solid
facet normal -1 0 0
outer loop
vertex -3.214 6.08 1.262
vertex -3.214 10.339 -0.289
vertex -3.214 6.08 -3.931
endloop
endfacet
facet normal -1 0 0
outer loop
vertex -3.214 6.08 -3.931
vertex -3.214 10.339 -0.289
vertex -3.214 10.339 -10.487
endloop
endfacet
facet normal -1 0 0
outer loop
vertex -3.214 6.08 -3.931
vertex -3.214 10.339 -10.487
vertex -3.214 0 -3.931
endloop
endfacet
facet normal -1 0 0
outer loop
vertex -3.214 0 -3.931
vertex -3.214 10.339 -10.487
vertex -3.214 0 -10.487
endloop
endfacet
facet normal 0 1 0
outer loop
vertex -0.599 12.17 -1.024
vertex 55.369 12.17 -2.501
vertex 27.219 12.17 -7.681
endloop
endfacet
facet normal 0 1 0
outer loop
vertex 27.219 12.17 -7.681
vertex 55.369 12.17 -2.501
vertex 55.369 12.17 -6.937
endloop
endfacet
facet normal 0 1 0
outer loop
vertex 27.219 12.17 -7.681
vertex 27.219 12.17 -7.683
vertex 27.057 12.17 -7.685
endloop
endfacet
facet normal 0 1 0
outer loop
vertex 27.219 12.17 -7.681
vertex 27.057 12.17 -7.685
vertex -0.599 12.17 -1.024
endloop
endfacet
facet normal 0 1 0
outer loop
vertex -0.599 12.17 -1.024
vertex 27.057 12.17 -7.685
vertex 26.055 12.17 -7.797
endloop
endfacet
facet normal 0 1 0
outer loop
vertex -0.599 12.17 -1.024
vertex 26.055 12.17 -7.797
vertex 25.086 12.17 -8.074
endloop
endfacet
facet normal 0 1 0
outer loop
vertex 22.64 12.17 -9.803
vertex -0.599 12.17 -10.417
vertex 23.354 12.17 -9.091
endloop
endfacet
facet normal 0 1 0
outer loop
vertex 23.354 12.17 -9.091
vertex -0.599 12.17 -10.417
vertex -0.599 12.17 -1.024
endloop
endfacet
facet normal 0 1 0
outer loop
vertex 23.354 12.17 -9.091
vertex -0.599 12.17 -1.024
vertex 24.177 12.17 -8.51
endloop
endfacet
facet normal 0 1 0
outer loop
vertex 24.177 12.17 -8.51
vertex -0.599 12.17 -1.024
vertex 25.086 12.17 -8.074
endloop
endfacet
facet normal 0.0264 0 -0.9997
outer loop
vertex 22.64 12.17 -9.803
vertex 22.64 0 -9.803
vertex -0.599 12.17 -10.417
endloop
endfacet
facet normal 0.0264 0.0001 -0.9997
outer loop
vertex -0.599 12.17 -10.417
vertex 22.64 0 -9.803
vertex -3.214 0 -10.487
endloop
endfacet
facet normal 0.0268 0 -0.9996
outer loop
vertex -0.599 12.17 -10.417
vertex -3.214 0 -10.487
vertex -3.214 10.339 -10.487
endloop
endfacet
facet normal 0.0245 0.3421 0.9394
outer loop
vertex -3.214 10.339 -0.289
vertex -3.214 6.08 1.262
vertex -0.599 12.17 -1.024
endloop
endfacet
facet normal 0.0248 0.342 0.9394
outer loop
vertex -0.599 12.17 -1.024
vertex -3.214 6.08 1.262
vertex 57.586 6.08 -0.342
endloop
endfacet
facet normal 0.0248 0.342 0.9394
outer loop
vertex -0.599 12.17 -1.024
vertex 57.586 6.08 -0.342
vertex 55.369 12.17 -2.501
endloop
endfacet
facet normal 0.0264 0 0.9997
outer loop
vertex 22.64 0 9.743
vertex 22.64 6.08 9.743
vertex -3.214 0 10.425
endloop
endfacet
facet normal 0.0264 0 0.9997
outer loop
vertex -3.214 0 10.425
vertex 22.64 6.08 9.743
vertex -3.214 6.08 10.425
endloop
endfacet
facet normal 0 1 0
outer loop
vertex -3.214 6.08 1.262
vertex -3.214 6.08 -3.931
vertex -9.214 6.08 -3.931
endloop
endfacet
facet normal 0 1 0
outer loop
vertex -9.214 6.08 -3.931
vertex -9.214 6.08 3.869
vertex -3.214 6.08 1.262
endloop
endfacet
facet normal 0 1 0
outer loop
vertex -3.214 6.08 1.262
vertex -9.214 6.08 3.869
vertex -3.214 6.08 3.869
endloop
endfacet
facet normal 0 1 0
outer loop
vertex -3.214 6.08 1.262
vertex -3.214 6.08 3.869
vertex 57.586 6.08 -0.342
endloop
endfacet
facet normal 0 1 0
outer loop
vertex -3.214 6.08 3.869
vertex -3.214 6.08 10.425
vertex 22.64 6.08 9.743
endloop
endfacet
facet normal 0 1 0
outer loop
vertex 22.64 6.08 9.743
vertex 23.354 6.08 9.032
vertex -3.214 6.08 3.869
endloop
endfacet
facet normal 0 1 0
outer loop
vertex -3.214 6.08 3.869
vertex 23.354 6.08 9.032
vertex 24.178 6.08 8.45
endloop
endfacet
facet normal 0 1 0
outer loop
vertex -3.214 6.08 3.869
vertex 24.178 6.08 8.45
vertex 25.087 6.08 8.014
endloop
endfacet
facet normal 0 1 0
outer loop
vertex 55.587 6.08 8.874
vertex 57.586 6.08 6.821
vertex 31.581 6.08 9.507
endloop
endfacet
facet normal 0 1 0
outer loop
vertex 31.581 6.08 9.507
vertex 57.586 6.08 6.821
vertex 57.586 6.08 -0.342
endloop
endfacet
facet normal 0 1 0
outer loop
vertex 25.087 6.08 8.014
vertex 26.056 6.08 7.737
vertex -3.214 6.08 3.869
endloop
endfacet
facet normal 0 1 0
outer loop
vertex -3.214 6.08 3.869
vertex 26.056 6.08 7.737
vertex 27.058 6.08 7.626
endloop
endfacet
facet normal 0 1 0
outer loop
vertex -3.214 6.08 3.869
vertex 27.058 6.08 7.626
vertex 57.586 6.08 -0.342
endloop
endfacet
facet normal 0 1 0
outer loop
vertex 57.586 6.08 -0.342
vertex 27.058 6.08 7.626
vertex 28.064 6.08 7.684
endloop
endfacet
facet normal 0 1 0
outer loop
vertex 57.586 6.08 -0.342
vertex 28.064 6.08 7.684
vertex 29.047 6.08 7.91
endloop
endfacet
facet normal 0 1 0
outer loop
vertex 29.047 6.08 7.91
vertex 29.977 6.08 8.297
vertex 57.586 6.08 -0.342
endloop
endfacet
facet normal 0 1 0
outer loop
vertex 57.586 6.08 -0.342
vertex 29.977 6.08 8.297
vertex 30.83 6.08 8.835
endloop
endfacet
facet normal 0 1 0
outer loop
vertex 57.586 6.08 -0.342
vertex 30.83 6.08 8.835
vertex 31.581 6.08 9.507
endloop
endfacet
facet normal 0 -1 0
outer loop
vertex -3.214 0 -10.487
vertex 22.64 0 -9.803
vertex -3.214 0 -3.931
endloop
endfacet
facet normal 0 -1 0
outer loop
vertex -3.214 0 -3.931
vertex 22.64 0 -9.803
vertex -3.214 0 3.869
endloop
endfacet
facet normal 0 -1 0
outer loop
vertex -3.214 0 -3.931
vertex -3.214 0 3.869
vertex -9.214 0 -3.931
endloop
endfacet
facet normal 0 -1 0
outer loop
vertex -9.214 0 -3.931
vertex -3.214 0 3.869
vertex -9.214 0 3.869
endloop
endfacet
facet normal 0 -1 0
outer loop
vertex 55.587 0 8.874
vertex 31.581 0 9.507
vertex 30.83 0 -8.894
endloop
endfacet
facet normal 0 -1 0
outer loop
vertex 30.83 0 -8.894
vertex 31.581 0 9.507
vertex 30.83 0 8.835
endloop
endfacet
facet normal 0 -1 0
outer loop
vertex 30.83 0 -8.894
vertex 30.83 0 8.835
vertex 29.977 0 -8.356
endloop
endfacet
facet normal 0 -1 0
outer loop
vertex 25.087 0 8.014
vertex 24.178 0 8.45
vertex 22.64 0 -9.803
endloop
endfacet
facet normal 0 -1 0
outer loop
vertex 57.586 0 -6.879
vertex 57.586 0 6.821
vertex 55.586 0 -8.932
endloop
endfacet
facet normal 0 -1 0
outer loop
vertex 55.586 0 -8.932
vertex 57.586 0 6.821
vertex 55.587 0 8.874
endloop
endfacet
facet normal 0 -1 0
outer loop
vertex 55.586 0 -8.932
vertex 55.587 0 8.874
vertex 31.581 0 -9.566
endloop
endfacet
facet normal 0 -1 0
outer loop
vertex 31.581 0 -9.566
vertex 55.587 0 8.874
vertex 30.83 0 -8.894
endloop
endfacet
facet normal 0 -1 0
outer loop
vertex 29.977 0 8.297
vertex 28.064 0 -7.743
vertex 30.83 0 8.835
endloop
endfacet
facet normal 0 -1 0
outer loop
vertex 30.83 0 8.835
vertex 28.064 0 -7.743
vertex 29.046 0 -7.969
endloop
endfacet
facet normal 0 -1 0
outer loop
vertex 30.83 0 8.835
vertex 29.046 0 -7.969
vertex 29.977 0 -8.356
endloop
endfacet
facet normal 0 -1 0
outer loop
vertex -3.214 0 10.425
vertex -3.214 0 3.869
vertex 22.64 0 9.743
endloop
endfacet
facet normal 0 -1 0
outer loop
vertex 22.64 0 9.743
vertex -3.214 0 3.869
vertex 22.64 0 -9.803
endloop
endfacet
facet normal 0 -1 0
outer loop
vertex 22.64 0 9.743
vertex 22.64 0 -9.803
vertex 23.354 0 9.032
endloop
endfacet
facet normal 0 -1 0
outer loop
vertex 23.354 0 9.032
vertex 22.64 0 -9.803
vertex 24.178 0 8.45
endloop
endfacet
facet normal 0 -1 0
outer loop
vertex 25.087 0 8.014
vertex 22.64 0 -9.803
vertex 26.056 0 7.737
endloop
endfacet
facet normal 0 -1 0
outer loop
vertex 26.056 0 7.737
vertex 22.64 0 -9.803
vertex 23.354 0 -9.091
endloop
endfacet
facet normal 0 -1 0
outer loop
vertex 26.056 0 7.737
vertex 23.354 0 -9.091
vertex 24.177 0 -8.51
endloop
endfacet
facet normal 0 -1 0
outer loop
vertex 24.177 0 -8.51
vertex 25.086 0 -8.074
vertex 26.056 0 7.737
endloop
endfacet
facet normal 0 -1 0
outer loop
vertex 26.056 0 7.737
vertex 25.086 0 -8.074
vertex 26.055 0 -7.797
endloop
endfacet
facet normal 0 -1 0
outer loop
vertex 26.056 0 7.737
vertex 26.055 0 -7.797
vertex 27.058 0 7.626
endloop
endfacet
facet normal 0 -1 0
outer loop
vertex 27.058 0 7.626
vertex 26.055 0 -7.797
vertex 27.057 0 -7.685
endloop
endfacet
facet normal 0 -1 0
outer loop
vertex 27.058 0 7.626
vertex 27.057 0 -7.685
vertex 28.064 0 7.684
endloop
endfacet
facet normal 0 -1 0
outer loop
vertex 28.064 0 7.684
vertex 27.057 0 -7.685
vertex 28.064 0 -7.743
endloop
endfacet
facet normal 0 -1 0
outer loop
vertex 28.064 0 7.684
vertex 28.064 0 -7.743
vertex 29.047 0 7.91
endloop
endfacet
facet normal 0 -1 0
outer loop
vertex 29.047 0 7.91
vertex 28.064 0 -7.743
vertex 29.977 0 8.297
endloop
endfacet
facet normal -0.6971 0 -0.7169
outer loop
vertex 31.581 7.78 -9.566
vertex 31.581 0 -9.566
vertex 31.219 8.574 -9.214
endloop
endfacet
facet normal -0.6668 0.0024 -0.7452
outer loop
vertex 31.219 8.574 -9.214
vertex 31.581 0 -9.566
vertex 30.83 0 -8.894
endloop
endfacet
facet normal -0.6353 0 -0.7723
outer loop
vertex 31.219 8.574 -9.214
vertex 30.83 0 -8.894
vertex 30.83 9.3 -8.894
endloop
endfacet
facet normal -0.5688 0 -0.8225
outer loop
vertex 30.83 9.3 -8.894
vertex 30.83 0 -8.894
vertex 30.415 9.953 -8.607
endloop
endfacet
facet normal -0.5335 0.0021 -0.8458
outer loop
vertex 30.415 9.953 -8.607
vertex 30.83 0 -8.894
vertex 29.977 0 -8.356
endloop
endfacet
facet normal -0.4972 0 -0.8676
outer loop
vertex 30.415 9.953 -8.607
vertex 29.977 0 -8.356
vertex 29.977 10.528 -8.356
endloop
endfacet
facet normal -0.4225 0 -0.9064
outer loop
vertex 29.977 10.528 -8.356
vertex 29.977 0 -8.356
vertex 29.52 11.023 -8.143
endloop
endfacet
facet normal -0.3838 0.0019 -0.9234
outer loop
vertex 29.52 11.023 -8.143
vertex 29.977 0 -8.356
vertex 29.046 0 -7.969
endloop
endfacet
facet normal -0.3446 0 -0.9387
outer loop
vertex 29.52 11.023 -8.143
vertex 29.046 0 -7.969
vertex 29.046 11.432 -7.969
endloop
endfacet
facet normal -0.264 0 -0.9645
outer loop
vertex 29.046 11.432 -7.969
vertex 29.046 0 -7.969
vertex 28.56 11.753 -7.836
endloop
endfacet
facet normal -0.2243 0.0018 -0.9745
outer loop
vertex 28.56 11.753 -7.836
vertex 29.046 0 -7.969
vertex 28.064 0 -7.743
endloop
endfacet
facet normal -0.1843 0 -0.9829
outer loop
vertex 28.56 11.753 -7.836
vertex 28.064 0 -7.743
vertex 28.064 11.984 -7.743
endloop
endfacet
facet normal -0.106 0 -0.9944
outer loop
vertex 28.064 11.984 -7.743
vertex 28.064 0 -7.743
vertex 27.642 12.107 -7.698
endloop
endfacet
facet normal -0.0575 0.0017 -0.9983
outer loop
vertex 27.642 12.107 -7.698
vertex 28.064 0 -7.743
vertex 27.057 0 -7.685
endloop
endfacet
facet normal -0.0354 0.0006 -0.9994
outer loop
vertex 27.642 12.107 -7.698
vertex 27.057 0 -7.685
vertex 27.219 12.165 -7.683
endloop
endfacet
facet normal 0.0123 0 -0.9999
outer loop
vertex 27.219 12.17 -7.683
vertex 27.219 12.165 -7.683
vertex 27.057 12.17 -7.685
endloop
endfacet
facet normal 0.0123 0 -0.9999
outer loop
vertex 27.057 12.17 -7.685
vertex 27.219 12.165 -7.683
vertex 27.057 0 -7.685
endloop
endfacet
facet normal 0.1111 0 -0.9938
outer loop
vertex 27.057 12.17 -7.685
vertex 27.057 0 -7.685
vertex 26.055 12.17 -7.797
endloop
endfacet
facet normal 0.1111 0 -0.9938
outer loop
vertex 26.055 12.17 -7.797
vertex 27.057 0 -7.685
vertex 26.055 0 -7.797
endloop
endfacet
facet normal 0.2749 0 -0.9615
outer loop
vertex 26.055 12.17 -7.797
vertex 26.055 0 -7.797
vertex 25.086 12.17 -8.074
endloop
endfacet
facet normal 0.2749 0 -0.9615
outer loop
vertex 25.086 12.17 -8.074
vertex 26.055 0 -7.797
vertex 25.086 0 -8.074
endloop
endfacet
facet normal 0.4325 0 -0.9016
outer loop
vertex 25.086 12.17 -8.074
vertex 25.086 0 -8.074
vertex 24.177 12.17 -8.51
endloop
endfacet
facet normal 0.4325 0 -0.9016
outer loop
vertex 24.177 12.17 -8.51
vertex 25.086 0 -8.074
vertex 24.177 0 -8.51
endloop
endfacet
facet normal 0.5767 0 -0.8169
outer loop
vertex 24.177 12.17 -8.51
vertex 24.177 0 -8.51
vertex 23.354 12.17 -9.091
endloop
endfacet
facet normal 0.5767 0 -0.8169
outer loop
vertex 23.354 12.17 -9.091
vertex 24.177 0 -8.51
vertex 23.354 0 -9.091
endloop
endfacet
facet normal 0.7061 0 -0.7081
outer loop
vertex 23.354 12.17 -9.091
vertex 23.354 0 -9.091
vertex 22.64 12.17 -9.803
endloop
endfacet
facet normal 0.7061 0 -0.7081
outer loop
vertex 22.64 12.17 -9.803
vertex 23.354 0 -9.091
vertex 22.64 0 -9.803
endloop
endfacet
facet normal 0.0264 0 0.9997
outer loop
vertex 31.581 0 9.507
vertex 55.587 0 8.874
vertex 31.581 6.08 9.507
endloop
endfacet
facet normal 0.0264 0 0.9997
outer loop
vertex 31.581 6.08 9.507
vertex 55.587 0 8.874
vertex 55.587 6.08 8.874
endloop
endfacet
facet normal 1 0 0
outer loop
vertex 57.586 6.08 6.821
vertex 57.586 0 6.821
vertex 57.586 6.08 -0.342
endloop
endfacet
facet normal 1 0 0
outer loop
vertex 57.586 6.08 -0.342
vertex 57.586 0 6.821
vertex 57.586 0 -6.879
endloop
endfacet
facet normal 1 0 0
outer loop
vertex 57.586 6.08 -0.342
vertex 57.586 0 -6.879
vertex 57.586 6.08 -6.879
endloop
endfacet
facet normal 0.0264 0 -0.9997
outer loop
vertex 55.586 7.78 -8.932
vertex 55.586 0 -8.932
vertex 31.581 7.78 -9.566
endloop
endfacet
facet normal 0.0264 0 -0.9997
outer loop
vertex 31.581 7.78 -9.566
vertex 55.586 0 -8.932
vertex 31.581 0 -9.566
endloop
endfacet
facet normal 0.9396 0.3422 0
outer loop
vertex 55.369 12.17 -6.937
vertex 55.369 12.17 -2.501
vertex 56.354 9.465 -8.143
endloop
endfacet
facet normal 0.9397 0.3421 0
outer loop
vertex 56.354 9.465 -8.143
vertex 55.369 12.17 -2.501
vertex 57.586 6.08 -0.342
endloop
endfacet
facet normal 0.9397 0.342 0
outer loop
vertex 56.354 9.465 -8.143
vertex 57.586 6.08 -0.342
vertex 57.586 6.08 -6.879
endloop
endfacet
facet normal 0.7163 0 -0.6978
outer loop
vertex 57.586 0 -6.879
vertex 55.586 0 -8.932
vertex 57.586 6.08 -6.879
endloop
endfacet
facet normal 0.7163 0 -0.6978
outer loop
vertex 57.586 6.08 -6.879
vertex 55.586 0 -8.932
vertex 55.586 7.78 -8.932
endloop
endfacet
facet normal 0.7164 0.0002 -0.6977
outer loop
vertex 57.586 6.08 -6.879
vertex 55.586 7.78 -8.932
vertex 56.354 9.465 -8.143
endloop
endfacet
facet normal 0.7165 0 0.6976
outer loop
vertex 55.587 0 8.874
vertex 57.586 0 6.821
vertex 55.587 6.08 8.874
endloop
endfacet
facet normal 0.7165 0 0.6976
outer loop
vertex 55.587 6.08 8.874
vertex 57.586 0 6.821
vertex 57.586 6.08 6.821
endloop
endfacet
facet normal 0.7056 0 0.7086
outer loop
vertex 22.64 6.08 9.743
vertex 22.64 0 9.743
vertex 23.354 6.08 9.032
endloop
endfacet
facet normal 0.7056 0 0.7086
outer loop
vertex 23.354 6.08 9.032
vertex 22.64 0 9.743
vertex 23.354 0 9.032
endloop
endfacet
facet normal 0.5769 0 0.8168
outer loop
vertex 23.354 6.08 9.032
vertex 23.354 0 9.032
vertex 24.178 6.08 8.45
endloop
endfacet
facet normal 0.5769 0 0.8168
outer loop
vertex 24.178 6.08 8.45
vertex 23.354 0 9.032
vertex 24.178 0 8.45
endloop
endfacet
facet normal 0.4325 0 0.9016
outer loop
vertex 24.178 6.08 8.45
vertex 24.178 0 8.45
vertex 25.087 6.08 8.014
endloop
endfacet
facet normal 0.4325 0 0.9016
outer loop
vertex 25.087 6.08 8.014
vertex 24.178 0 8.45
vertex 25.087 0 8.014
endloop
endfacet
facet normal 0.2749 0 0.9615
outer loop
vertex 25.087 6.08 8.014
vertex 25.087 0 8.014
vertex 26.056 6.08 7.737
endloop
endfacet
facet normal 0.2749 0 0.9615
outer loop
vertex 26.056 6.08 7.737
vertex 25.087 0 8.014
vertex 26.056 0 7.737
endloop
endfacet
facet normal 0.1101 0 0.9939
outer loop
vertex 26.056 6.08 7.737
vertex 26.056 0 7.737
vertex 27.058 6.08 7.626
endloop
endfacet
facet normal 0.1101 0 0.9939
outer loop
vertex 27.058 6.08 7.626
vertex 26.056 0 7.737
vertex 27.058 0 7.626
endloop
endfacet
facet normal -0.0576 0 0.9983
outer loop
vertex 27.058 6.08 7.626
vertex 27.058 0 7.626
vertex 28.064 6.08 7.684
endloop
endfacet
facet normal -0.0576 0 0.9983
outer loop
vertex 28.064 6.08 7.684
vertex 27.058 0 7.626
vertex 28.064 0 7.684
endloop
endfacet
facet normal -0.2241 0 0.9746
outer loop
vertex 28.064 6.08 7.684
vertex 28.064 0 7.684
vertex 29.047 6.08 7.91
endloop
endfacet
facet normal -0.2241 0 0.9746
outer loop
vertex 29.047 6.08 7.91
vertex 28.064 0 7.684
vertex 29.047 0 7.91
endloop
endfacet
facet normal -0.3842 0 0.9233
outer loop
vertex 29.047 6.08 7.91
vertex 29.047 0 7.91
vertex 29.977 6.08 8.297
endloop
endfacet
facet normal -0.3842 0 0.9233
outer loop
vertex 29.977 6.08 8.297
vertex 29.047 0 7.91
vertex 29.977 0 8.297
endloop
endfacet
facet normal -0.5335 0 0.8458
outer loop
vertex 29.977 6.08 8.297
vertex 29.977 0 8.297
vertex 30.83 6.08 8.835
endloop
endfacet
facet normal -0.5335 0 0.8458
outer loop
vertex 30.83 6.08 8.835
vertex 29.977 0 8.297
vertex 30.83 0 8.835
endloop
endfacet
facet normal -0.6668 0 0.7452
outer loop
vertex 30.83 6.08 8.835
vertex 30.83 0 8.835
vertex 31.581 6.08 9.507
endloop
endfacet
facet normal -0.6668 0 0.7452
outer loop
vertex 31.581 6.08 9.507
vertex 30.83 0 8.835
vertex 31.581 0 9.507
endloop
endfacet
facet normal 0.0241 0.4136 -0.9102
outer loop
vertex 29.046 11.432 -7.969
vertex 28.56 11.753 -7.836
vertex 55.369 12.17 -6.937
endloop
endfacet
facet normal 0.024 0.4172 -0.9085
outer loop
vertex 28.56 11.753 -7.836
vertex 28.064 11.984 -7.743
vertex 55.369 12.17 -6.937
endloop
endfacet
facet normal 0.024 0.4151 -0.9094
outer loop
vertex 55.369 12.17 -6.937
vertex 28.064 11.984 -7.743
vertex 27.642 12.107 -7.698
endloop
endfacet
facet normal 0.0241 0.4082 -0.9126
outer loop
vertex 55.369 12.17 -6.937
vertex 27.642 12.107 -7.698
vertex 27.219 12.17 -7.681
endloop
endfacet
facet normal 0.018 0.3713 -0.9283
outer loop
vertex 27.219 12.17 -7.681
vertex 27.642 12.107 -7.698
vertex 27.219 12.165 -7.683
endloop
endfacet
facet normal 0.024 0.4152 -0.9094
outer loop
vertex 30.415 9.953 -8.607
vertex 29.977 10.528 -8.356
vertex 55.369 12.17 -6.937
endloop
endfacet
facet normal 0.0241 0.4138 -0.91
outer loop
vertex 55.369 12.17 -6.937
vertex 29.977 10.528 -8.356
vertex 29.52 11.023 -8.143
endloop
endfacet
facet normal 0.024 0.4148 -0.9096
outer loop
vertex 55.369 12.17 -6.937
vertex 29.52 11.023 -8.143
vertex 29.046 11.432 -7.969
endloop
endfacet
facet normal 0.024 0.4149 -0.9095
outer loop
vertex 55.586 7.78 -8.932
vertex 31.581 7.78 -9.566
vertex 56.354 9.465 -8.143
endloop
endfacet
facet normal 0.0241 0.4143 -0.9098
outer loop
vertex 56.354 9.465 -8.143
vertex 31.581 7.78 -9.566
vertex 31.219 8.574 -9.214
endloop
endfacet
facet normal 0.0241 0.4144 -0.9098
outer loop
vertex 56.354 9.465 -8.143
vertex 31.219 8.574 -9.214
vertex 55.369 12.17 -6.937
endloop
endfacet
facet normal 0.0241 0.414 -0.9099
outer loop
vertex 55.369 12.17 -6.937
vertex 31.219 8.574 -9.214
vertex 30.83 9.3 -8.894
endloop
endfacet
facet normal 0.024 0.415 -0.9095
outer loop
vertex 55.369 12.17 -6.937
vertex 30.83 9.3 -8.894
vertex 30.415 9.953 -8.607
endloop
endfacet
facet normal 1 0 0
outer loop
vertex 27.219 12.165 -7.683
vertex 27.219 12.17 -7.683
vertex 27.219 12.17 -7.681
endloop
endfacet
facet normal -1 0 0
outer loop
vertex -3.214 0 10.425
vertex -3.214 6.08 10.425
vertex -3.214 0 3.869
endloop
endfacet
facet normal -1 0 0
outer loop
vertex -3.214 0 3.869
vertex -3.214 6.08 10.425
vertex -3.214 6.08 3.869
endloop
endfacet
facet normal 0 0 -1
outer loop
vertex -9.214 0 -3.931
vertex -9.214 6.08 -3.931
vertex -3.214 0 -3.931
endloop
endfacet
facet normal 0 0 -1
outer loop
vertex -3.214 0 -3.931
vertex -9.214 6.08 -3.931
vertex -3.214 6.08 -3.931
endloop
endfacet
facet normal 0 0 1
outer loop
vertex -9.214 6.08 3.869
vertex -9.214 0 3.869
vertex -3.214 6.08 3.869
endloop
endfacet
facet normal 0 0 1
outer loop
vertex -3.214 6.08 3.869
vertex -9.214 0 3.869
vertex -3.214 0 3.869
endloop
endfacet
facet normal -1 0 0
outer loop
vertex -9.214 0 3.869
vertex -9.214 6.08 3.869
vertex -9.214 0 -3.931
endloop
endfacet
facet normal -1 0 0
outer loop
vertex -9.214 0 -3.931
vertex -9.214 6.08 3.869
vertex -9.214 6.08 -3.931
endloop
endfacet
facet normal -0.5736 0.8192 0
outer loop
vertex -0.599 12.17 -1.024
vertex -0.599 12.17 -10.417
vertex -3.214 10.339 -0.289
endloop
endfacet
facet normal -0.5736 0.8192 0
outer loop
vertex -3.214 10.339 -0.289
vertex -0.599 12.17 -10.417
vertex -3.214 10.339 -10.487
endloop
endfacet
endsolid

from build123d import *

# Parameters (mm, degrees)
BOSS_EXTRUDE1_DEPTH = 6.08
BOSS_EXTRUDE2_DEPTH = 6.09
SKETCH4_W           = 70.899698082
SKETCH4_H           = 9.313865989
CUT_EXTRUDE4_DEPTH  = 13.09
SKETCH5_W           = 29.305939782
SKETCH5_H           = 12.234342693
CUT_EXTRUDE5_DEPTH  = 19.09
SKETCH6_R           = 6
CUT_EXTRUDE6_DEPTH  = 60.839839878
CUT_EXTRUDE7_DEPTH  = 11.09
SKETCH10_W          = 36.097359295
SKETCH10_H          = 22.987225517
CUT_EXTRUDE11_DEPTH = 63.929843377
SKETCH12_W          = 7.8
SKETCH12_H          = 6.08
BOSS_EXTRUDE4_DEPTH = 6
CUT_EXTRUDE12_REACH = 66.913
SKETCH13_W          = 18.746233403
SKETCH13_H          = 9.142839949


with BuildPart() as part:
    # Sketch1 → Boss-Extrude1 (new body)
    with BuildSketch(Plane(origin=(0, 0, 0), x_dir=(1, 0, 0), z_dir=(0, 1, 0))):
        Polygon((-14.914047624, 10.796093069), (-14.914047624, -10.733906931), (57.585952376, -8.821379846), (57.585952376, 8.878620154), align=None)
    extrude(amount=BOSS_EXTRUDE1_DEPTH)

    # Sketch2 → Boss-Extrude2 (add)
    with BuildSketch(Plane(origin=(0, 6.08, 0), x_dir=(1, 0, 0), z_dir=(0, 1, 0))):
        Polygon((-13.064047624, 10.74716445), (-13.064047624, -1.521917904), (57.585952376, 0.341806766), (57.585952376, 8.878620154), align=None)
    extrude(amount=BOSS_EXTRUDE2_DEPTH)

    # Sketch4 → Cut-Extrude4 (cut)
    with BuildSketch(Plane(origin=(0.078934537, 1.089467811, 2.992247256), x_dir=(0.9996522376299903, 0, -0.026370510070028146), z_dir=(0.02478017371916596, 0.34202014332566605, 0.9393658310530242))):
        with Locations((22.35021085, 9.967746424)):
            Rectangle(SKETCH4_W, SKETCH4_H)
    extrude(amount=CUT_EXTRUDE4_DEPTH, mode=Mode.SUBTRACT)

    # Sketch5 → Cut-Extrude5 (cut)
    with BuildSketch(Plane(origin=(52.803749931, 19.218993233, 0), x_dir=(0, 0, -1), z_dir=(0.9396926207859081, 0.34202014332566943, 1.2295842975475839e-15))):
        with Locations((0.411188199, -7.865053205)):
            Rectangle(SKETCH5_W, SKETCH5_H)
    extrude(amount=CUT_EXTRUDE5_DEPTH, mode=Mode.SUBTRACT)

    # Sketch6 → Cut-Extrude6 (cut, through all)
    with BuildSketch(Plane.XZ):
        with Locations((27.215952376, 13.62392238)):
            Circle(SKETCH6_R)
        with Locations((27.215952376, -13.683241685)):
            Circle(SKETCH6_R)
        Polygon((-14.914047624, 10.733906931), (-14.914047624, 8.733906931), (-12.914047624, 10.681147563), align=None)
        Polygon((-14.914047624, -10.796093069), (-12.914047624, -10.743197265), (-14.914047624, -8.796093069), align=None)
        Polygon((55.586647901, 8.874120866), (57.585952376, 8.821379846), (57.585952376, 6.821379846), align=None)
        Polygon((57.585952376, -8.878620154), (57.585952376, -6.878620154), (55.585952376, -8.931515959), align=None)
    extrude(amount=-CUT_EXTRUDE6_DEPTH, mode=Mode.SUBTRACT)

    # Sketch7 → Cut-Extrude7 (cut)
    with BuildSketch(Plane(origin=(0.305261026, 5.260141687, -11.541974951), x_dir=(-0.9997105289622884, 0.009976365195544153, -0.021893615951381312), z_dir=(0.024059473814631405, 0.4145836859950284, -0.9096930850712998))):
        Polygon((-26.921663821, 7.88786599), (-26.921663821, 3.064364781), (-63.575410801, 3.466220434), (-63.575410801, 10.38968732), (-26.921663821, 9.987831666), align=None)
    extrude(amount=CUT_EXTRUDE7_DEPTH, mode=Mode.SUBTRACT)

    # Sketch10 → Cut-Extrude11 (cut, through all)
    with BuildSketch(Plane.ZY.offset(3.214047624)):
        with Locations((0.41938451, 3.731019242)):
            Rectangle(SKETCH10_W, SKETCH10_H)
    extrude(amount=CUT_EXTRUDE11_DEPTH, mode=Mode.SUBTRACT)

    # Sketch12 → Boss-Extrude4 (add)
    with BuildSketch(Plane.ZY.offset(3.214047624)):
        with Locations((-0.030693992, 3.04)):
            Rectangle(SKETCH12_W, SKETCH12_H)
    extrude(amount=BOSS_EXTRUDE4_DEPTH)

    # Sketch13 → Cut-Extrude12 (cut, up to next)
    with BuildSketch(Plane(origin=(-5.91505424, 8.447572923, 0), x_dir=(0, 0, 1), z_dir=(-0.5735764363510444, 0.819152044288993, 0)), mode=Mode.PRIVATE) as cut_extrude12_sk1:
        with Locations((-4.290942315, 4.9788615)):
            Rectangle(SKETCH13_W, SKETCH13_H)
    cut_extrude12_tool1 = extrude(cut_extrude12_sk1.sketch, amount=CUT_EXTRUDE12_REACH, mode=Mode.PRIVATE) & part.part
    add(cut_extrude12_tool1.solids().sort_by_distance((-1.83661, 11.303331, -4.290942))[0], mode=Mode.SUBTRACT)


solid = part.part
